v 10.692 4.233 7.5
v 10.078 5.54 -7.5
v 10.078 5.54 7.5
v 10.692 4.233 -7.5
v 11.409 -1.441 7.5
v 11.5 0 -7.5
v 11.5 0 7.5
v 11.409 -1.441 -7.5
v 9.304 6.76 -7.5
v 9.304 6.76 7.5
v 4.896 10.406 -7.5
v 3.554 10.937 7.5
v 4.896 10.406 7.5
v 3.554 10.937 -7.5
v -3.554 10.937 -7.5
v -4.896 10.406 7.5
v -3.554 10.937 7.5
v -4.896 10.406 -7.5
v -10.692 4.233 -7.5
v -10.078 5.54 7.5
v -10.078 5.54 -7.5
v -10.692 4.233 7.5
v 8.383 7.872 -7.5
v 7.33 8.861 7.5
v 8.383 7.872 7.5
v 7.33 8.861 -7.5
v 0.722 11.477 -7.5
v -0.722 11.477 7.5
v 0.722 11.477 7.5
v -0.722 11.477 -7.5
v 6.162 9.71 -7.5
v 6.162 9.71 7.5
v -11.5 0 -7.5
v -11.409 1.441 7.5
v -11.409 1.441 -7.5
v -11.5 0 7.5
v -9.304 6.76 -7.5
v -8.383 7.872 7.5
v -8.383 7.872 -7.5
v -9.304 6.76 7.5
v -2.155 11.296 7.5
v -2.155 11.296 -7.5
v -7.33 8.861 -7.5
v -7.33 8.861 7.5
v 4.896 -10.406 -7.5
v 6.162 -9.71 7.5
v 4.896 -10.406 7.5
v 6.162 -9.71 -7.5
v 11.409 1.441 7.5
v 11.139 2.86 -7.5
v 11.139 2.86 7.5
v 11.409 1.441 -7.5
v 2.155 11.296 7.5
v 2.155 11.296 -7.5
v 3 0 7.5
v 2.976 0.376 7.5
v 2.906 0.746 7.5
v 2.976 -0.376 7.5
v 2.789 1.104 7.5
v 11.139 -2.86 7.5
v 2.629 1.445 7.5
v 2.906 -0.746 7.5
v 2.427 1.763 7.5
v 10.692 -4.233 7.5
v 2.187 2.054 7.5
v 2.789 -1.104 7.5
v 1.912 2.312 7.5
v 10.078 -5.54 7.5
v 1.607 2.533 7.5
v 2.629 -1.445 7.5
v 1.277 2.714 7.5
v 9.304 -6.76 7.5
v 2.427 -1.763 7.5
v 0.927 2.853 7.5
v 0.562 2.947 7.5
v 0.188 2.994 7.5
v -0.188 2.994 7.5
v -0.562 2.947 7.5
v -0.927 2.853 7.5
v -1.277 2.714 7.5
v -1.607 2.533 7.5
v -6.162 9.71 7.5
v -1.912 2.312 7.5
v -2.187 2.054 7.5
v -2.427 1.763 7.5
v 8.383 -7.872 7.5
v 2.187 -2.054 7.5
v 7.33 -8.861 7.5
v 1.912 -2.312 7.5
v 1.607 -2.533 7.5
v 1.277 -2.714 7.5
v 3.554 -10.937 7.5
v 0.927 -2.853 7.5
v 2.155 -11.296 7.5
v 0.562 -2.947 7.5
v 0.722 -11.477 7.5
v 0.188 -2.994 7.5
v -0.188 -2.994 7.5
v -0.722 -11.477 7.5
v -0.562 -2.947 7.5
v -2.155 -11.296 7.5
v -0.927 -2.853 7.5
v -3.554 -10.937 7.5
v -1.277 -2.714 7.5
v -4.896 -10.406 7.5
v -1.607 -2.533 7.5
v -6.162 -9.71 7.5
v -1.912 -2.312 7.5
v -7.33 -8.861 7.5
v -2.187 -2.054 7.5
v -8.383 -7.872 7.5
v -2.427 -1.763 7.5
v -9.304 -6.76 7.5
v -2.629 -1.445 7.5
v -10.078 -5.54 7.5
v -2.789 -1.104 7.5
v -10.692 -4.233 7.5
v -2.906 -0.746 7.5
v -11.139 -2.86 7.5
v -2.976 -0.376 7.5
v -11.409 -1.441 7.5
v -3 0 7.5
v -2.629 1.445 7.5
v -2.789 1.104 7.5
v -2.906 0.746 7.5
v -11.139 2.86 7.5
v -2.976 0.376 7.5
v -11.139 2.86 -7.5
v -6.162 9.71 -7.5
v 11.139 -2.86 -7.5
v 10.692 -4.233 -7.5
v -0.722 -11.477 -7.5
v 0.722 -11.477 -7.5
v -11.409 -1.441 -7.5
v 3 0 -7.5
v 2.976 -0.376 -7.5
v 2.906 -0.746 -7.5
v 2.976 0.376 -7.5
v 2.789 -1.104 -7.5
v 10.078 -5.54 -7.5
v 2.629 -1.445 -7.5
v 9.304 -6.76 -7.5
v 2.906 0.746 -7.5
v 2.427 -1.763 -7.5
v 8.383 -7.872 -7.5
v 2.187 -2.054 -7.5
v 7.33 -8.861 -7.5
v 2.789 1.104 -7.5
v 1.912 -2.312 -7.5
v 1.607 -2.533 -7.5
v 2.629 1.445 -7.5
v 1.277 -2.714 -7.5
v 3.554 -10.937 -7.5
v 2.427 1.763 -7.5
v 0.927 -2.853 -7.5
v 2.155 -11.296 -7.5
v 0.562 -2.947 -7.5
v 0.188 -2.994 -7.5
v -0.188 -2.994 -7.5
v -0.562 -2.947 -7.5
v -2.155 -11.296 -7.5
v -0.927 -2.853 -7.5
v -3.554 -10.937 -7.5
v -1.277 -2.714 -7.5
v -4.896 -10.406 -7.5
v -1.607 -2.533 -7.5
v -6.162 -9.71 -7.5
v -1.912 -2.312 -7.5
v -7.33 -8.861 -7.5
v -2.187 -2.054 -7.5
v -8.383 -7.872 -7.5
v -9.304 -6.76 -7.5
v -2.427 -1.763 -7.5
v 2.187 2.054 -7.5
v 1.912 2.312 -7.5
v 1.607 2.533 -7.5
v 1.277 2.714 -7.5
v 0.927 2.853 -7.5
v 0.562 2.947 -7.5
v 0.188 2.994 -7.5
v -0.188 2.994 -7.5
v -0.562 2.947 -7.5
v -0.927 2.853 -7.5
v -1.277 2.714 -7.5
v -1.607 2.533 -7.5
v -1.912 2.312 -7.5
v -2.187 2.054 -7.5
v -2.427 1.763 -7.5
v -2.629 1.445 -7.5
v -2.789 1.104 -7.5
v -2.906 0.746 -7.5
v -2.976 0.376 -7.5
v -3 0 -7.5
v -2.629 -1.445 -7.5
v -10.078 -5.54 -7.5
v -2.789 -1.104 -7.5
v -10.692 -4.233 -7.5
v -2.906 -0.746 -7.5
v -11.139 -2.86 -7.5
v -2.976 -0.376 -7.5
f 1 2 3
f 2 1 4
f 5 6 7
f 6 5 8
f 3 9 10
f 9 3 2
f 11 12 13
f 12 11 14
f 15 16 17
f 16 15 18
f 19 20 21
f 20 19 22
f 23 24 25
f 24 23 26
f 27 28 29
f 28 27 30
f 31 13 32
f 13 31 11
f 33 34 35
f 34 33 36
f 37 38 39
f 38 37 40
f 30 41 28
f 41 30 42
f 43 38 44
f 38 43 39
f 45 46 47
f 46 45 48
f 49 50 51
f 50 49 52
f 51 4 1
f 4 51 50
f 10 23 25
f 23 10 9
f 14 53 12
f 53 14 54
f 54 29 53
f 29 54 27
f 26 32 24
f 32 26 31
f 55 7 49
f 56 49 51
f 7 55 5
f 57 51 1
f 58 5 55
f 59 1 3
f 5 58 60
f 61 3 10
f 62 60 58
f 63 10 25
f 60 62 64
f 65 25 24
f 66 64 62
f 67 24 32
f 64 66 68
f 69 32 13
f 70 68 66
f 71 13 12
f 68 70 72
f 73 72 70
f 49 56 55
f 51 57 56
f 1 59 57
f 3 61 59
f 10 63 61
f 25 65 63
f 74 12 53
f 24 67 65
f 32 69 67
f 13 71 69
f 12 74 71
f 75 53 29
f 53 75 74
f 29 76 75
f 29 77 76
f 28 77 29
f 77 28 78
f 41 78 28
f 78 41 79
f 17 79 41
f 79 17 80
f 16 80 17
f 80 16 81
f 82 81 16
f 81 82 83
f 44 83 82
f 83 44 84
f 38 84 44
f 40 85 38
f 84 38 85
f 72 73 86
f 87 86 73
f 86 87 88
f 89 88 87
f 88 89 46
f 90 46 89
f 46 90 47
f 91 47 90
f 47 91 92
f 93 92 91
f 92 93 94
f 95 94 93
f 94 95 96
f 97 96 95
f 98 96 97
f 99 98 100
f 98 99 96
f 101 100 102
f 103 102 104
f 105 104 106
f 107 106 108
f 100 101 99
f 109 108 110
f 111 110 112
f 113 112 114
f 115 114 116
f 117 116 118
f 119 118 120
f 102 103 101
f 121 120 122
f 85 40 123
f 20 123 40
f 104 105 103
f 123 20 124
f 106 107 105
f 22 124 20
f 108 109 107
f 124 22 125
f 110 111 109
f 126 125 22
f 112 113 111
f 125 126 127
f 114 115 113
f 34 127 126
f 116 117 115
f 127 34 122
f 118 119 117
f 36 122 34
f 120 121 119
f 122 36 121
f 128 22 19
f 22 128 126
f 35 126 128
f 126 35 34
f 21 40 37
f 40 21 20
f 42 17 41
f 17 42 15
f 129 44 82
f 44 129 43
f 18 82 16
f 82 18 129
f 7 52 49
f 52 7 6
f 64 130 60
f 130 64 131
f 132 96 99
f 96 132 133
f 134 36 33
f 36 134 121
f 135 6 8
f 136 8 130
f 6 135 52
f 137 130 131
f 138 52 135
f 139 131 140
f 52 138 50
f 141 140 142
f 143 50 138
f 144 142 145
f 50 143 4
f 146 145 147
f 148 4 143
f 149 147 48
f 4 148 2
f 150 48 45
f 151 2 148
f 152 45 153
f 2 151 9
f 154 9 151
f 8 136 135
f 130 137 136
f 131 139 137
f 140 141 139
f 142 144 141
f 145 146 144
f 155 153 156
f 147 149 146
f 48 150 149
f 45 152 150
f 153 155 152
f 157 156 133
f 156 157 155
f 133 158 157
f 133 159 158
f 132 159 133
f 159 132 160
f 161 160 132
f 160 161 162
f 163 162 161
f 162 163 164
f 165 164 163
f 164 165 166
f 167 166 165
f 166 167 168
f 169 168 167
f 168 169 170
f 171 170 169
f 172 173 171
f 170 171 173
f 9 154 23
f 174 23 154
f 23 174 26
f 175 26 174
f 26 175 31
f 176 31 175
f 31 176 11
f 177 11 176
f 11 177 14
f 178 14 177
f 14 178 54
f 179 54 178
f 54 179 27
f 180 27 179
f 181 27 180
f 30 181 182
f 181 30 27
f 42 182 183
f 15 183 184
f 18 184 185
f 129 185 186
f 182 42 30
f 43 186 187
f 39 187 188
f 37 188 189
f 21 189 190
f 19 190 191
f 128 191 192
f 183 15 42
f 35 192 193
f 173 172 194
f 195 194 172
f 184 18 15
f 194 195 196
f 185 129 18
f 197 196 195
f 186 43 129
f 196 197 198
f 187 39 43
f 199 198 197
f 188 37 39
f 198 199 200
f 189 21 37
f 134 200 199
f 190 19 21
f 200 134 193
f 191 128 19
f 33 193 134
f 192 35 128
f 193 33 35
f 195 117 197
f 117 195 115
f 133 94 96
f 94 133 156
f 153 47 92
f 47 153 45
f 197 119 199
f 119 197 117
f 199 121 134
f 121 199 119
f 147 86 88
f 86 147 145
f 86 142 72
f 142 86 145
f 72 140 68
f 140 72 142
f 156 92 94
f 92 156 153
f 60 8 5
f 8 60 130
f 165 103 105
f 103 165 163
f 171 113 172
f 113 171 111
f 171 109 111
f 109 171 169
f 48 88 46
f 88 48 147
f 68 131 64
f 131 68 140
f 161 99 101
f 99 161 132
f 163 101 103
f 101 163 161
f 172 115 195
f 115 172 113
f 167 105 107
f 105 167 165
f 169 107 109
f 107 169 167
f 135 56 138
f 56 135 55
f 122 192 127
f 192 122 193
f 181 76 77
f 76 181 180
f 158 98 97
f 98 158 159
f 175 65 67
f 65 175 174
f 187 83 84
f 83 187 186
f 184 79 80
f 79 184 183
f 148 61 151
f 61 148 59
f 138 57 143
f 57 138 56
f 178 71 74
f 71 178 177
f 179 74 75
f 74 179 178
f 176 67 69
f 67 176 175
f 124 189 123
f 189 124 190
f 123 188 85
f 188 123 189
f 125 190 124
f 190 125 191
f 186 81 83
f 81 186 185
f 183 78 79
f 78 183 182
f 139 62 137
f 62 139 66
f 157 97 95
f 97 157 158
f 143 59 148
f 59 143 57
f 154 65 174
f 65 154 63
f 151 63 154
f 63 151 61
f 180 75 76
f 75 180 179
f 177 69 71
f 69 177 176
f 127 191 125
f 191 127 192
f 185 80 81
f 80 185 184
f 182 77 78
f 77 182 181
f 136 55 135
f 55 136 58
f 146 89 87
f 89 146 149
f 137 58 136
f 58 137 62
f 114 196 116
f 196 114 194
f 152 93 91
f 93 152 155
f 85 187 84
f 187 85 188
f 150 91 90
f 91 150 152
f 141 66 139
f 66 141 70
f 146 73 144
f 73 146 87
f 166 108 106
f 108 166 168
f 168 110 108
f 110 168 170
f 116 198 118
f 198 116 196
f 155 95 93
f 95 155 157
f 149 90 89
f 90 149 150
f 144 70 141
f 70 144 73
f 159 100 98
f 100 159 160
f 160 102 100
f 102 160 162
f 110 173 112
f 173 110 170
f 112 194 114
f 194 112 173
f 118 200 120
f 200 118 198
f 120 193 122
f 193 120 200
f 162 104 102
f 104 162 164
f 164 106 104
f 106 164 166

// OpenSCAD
$fn = 50;


difference() {
	union() {
		translate(v = [0, 0, -7.5000000000]) {
			cylinder(h = 15, r = 11.5000000000);
		}
	}
	union() {
		translate(v = [0, 0, -100.0000000000]) {
			cylinder(h = 200, r = 3);
		}
	}
}
